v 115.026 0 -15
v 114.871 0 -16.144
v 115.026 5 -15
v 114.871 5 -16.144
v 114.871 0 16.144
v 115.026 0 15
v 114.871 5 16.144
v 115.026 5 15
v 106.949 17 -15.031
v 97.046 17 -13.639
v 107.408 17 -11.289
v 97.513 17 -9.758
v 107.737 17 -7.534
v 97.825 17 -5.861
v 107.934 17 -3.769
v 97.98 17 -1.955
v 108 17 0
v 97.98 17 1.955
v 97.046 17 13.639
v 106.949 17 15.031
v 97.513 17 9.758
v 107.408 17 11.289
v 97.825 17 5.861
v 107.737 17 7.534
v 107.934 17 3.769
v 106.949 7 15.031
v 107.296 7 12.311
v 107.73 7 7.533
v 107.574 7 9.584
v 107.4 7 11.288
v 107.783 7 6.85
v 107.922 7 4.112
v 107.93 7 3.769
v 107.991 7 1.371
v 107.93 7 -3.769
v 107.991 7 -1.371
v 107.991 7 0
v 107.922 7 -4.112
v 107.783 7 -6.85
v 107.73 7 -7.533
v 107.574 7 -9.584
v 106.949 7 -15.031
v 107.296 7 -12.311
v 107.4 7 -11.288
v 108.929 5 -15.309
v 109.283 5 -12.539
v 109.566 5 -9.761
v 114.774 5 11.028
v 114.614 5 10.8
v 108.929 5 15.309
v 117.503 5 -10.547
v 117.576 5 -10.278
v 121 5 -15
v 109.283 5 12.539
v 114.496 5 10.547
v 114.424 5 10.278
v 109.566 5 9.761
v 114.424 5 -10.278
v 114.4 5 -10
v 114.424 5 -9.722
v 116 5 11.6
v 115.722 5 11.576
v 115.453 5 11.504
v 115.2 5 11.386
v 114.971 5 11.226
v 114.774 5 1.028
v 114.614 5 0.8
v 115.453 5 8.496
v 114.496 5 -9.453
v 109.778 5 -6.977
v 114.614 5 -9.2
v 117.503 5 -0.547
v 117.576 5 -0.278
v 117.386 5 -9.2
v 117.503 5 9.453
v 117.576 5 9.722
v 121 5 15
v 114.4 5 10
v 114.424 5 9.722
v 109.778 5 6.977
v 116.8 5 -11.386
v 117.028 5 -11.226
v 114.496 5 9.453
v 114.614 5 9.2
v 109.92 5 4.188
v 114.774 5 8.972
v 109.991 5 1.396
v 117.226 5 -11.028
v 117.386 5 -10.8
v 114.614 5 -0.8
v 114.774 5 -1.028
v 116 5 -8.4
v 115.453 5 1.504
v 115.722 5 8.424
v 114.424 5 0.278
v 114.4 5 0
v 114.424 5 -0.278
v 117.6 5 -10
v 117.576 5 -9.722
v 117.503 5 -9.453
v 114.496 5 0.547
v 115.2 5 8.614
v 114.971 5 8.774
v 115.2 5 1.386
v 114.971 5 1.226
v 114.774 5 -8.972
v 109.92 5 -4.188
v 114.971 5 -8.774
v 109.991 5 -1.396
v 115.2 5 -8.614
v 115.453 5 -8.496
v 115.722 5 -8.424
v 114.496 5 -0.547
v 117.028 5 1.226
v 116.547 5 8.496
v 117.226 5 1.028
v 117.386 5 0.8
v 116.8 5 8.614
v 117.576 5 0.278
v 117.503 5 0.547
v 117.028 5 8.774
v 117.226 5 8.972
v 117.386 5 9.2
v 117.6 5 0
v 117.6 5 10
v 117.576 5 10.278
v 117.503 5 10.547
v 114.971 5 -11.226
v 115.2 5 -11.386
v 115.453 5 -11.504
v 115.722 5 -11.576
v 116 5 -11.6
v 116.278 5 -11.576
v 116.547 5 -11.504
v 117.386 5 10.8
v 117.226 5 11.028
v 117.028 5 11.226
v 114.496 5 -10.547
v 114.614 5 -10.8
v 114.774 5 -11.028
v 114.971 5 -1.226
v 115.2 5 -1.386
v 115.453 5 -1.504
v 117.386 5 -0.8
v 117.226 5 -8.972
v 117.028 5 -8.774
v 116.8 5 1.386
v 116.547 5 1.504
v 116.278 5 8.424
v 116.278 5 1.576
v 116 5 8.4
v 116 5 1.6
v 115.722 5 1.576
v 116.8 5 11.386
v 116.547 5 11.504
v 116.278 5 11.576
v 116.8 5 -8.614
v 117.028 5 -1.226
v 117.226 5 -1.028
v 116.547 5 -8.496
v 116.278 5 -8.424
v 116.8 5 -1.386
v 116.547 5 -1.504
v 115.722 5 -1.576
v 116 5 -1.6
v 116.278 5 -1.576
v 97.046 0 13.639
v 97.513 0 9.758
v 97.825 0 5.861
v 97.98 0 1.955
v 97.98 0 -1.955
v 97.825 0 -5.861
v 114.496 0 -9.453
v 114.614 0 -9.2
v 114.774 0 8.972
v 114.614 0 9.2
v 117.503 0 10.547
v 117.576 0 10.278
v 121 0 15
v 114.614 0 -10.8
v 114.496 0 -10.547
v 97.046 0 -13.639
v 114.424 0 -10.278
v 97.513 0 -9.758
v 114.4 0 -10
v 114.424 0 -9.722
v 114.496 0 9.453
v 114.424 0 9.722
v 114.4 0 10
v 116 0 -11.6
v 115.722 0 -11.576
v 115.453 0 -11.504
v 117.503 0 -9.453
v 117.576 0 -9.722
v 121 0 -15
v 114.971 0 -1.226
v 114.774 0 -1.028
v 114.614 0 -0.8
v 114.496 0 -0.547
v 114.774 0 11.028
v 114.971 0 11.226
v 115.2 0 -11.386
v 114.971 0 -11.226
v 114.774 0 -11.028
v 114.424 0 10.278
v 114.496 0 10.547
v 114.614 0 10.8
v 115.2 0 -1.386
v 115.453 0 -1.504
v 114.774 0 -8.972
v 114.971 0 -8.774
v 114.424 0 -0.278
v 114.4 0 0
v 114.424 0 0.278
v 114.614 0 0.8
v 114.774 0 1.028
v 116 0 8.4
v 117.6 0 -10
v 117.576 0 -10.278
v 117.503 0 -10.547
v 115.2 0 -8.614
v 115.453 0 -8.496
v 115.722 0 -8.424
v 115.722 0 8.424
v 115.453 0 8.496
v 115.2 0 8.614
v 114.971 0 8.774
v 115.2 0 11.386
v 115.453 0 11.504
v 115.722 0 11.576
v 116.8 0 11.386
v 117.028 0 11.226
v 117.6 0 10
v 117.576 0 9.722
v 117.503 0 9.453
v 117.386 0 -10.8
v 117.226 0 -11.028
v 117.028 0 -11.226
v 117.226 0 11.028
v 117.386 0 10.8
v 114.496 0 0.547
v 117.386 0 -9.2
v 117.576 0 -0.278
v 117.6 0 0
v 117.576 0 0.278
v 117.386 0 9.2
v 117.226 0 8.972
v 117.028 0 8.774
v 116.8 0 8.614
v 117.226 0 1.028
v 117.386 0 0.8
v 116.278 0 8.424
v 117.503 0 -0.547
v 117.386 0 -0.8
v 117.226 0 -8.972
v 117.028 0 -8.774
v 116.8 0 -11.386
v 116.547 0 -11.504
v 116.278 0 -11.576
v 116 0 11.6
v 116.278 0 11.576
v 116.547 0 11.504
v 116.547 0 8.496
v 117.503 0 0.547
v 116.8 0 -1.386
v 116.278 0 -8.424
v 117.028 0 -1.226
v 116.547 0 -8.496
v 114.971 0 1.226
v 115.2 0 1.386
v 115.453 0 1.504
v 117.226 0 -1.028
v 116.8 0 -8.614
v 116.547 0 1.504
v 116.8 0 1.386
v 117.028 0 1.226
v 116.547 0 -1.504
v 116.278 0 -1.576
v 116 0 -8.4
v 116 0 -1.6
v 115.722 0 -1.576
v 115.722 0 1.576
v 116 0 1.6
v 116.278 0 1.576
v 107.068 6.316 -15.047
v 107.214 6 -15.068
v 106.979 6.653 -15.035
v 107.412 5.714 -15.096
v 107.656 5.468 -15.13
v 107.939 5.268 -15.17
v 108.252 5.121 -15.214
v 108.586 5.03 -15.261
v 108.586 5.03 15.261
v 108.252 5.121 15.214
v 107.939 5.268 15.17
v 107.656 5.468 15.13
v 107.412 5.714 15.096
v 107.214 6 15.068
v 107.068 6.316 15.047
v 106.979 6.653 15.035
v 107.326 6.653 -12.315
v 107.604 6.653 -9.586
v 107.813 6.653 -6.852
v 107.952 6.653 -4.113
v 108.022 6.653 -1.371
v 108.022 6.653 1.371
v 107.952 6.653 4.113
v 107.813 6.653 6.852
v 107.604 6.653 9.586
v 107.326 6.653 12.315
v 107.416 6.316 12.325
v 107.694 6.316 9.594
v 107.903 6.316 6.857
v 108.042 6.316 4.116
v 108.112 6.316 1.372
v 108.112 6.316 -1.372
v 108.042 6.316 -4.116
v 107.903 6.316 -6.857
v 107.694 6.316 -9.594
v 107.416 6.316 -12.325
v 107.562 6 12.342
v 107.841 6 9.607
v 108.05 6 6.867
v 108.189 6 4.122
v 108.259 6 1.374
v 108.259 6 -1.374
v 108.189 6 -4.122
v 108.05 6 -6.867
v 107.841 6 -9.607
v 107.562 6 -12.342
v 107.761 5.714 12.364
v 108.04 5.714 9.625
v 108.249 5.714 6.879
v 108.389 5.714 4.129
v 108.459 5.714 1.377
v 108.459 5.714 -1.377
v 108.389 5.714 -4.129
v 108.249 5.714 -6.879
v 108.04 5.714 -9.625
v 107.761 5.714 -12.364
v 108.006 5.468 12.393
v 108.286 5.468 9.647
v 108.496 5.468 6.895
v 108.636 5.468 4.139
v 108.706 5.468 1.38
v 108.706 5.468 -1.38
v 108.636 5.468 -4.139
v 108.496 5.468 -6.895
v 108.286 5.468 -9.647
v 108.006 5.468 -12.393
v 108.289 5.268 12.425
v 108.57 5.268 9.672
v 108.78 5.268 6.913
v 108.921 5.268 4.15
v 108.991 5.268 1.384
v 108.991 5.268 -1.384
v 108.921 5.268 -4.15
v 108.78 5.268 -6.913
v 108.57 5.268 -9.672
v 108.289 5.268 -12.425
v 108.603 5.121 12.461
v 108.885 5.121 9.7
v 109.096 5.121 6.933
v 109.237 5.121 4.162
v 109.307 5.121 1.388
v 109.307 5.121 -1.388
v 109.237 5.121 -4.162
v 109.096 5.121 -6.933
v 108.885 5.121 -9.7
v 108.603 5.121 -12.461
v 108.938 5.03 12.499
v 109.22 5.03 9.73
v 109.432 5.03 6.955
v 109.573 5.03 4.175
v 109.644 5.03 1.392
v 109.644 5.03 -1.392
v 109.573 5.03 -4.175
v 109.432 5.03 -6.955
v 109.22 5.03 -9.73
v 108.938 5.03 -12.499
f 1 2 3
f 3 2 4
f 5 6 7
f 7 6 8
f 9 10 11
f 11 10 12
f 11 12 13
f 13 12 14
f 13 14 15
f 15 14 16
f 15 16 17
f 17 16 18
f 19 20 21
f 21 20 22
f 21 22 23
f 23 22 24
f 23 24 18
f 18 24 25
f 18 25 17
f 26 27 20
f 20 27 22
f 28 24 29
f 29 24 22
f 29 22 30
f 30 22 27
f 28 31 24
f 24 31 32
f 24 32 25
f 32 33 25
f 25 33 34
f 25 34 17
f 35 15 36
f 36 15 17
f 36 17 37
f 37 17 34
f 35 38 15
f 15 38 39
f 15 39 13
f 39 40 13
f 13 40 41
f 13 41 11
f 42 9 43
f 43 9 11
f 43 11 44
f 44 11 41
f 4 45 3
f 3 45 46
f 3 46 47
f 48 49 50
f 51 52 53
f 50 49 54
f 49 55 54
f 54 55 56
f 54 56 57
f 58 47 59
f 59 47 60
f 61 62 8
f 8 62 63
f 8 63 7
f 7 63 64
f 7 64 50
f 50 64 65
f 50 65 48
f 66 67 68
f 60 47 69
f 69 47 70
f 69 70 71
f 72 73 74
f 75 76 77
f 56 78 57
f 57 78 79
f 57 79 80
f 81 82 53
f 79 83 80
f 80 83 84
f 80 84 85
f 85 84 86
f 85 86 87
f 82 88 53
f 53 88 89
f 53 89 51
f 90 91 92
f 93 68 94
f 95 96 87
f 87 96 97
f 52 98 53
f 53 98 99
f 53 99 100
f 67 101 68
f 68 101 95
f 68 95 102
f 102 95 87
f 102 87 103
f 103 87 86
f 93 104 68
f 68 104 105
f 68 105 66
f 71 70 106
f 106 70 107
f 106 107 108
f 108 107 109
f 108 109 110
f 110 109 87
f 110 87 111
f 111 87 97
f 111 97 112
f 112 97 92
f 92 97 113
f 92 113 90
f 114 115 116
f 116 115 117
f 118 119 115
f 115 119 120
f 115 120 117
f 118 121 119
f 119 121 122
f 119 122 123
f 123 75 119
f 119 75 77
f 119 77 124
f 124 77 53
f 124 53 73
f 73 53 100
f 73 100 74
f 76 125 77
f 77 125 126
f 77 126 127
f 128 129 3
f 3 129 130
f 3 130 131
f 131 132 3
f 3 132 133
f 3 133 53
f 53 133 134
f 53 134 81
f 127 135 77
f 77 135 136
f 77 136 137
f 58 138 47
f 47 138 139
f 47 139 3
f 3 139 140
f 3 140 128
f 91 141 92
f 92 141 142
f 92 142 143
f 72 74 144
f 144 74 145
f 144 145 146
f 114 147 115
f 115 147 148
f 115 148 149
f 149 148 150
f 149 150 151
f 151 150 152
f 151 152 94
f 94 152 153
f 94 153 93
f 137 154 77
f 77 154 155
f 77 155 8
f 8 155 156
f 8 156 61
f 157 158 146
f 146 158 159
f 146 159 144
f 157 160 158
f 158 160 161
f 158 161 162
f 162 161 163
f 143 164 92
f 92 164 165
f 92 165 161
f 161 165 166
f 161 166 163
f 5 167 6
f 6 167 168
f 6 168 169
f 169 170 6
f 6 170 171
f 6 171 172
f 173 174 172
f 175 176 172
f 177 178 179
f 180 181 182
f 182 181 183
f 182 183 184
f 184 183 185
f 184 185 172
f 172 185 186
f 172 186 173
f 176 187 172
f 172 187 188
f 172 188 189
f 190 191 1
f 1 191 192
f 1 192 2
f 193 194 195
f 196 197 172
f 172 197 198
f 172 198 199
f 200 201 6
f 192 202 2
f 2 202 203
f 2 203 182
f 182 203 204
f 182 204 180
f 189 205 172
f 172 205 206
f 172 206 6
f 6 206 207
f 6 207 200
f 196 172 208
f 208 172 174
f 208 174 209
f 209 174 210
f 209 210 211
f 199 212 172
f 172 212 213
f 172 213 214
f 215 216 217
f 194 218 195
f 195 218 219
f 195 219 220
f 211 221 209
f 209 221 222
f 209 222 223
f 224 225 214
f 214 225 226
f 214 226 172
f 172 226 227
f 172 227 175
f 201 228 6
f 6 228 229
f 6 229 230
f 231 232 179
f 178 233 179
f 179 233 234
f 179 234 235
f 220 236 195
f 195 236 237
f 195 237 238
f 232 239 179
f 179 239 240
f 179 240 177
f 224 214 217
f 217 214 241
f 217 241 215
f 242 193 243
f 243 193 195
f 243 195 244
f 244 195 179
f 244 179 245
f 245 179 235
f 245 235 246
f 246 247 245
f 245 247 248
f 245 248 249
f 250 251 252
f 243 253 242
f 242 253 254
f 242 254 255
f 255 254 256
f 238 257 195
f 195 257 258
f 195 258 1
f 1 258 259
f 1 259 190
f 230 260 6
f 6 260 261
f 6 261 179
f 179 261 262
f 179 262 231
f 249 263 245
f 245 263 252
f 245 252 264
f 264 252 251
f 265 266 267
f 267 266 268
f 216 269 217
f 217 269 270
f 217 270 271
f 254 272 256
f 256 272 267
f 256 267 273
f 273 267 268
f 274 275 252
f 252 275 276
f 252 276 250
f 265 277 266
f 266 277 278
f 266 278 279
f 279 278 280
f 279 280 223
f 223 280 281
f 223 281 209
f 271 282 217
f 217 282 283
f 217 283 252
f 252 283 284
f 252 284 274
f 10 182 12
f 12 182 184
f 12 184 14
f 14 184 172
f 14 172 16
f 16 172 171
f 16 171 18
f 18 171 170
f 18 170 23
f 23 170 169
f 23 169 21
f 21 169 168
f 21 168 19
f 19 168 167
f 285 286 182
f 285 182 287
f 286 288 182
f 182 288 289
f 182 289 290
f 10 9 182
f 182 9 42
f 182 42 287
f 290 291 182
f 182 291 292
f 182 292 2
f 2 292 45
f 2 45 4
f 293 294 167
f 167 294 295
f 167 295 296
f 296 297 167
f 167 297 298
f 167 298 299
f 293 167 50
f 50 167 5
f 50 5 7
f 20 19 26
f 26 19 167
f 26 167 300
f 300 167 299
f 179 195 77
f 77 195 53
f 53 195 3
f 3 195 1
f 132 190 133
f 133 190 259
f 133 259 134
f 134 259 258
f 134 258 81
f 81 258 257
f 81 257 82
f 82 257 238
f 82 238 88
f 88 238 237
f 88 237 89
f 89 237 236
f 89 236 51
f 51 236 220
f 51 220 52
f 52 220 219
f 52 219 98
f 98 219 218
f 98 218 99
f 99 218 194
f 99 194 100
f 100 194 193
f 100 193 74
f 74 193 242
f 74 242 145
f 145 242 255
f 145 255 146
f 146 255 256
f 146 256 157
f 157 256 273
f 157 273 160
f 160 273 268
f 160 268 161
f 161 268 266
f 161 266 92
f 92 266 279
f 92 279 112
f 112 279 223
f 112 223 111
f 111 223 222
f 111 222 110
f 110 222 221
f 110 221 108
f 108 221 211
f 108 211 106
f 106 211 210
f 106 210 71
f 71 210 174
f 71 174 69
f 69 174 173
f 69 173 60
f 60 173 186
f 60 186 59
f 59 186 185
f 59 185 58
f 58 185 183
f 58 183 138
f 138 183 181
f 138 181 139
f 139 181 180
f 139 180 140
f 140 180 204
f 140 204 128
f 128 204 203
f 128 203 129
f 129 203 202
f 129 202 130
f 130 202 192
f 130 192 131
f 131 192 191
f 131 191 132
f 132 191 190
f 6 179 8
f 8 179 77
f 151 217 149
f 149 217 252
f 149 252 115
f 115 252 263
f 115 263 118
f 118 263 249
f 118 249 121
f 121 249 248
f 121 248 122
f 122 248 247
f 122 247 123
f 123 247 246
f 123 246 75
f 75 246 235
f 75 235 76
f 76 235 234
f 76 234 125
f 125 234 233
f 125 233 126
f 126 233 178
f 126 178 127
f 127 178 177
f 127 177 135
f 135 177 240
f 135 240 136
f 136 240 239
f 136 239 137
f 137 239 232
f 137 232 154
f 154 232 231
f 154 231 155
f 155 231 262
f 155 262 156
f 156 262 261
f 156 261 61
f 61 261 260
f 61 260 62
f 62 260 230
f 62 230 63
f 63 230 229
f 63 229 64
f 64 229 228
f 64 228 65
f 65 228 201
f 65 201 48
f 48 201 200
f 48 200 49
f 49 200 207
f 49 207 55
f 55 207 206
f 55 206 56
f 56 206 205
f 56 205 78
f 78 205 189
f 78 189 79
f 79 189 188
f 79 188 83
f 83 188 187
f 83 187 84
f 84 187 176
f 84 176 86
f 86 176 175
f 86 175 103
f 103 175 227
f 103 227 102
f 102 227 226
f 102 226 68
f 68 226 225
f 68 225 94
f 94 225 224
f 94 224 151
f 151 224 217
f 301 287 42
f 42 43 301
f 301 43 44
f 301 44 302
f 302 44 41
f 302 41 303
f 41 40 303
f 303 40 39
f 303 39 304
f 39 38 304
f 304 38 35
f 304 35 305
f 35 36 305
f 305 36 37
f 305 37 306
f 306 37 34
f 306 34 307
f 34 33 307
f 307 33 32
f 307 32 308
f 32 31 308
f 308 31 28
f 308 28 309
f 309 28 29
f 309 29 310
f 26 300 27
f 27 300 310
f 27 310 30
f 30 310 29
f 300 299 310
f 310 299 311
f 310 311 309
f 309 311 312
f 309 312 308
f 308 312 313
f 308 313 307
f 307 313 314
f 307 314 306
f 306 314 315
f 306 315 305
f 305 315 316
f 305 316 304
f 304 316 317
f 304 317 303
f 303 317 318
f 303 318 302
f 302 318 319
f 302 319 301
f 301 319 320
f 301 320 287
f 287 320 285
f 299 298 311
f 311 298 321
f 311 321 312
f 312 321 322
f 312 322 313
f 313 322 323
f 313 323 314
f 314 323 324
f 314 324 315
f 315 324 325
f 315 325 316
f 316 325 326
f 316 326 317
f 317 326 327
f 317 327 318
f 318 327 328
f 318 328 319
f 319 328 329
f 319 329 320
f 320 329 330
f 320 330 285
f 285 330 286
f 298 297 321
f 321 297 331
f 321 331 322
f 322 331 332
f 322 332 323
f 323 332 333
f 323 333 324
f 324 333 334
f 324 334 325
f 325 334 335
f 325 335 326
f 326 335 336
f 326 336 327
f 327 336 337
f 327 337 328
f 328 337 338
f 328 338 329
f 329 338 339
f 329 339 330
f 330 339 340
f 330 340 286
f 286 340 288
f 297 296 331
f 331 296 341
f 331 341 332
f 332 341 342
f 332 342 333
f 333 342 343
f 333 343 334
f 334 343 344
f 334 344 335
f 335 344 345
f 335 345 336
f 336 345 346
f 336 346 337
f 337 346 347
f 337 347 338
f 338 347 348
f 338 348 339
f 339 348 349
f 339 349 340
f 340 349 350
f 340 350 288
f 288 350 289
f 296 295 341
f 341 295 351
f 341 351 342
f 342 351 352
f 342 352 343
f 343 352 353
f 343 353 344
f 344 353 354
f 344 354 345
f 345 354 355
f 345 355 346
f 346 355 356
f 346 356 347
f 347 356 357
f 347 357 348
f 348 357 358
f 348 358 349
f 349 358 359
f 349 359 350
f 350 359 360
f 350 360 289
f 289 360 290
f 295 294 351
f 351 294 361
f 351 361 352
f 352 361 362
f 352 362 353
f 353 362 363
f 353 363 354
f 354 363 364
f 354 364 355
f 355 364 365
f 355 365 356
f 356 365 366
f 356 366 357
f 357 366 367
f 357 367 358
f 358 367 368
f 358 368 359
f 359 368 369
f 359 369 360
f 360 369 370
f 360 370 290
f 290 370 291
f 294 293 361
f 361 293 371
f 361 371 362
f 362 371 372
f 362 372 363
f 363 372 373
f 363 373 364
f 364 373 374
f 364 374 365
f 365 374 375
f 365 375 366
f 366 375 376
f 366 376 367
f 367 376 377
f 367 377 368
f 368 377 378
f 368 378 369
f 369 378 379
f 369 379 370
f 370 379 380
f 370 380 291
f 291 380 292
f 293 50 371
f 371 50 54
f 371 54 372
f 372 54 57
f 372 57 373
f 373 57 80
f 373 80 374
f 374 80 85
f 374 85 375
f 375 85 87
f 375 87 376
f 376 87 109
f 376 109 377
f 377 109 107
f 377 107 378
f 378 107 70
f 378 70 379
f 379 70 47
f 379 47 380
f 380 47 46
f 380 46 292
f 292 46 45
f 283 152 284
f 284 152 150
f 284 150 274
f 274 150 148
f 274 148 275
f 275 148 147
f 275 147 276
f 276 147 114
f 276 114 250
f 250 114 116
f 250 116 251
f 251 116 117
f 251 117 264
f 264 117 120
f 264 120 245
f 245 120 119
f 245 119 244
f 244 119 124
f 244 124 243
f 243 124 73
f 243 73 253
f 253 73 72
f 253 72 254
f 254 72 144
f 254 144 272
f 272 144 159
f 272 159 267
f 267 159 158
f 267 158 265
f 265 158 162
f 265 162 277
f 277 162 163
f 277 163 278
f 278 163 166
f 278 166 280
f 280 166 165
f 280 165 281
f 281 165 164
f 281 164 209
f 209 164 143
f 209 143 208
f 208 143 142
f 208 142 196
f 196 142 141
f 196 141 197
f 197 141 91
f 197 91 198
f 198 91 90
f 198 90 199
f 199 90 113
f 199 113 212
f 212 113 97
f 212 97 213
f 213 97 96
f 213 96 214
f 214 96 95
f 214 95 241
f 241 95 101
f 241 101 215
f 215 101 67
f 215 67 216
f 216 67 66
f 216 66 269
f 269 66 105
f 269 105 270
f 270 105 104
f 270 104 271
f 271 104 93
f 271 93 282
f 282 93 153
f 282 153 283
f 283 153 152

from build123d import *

# Parameters (mm, degrees)
REVOLVE1_ANGLE                 = 16
SKETCH4_W                      = 10
SKETCH4_H                      = 5
MAKERBEAMSUPPORT_DEPTH         = 10
SKETCH5_R                      = 1.6
MAKERBEAMHOLE_DEPTH            = 18
MAKERBEAMHOLELINEARRIGHT_COUNT = 2
MAKERBEAMHOLELINEARRIGHT_PITCH = 10
MIRROR3_COPY_1_SKETCH_W        = 10
MIRROR3_COPY_1_SKETCH_H        = 5
MIRROR3_COPY_1_DEPTH           = 10
MIRROR3_COPY_2_SKETCH_R        = 1.6
MIRROR3_COPY_2_DEPTH           = 18
MIRROR3_COPY_3_SKETCH_W        = 10
MIRROR3_COPY_3_SKETCH_H        = 5
MIRROR3_COPY_3_DEPTH           = 10
FILLET7_R                      = 2
SKETCH8_R                      = 1.6
CUT_EXTRUDE8_DEPTH             = 6


with BuildPart() as part:
    # Sketch1 → Revolve1 (revolve, symmetric)
    with BuildSketch(Plane.XY) as revolve1_sk:
        Polygon((98, 17), (98, 0), (116, 0), (116, 5), (108, 5), (108, 17), align=None)
    revolve(axis=Axis((0, -55, 0), (0, 1, 0)), revolution_arc=REVOLVE1_ANGLE / 2)
    revolve(revolve1_sk.sketch, axis=Axis((0, -55, 0), (0, -1, 0)), revolution_arc=REVOLVE1_ANGLE / 2)

    # Sketch4 → MakerBeamSupport (add)
    with BuildSketch(Plane(origin=(111, 0, 0), x_dir=(0, 0, -1), z_dir=(1, 0, 0))):
        with Locations((0, 2.5)):
            Rectangle(SKETCH4_W, SKETCH4_H)
    makerbeamsupport = extrude(amount=MAKERBEAMSUPPORT_DEPTH)

    # Sketch5 → MakerBeamHole (cut, through all)
    with BuildSketch(Plane(origin=(0, 0, 0), x_dir=(-1, 0, 0), z_dir=(0, -1, 0))):
        with Locations((-116, 0)):
            Circle(SKETCH5_R)
    makerbeamhole = extrude(amount=-MAKERBEAMHOLE_DEPTH, mode=Mode.SUBTRACT)

    # MakerBeamHoleLinearRight: MakerBeamSupport, MakerBeamHole ×2
    with Locations(*[(0, 0, -i * MAKERBEAMHOLELINEARRIGHT_PITCH) for i in range(1, MAKERBEAMHOLELINEARRIGHT_COUNT)]):
        add(makerbeamsupport)
        add(makerbeamhole, mode=Mode.SUBTRACT)

    # Mirror3: MakerBeamHole across plane
    add(makerbeamhole.mirror(Plane.XY), mode=Mode.SUBTRACT)

    # Mirror3 copy 1 sketch → Mirror3 copy 1 (add)
    with BuildSketch(Plane(origin=(111, 0, 10), x_dir=(0, 0, 1), z_dir=(1, 0, 0))):
        with Locations((0, -2.5)):
            Rectangle(MIRROR3_COPY_1_SKETCH_W, MIRROR3_COPY_1_SKETCH_H)
    extrude(amount=MIRROR3_COPY_1_DEPTH)

    # Mirror3 copy 2 sketch → Mirror3 copy 2 (cut, through all)
    with BuildSketch(Plane(origin=(0, 0, 10), x_dir=(-1, 0, 0), z_dir=(0, -1, 0))):
        with Locations((-116, 0)):
            Circle(MIRROR3_COPY_2_SKETCH_R)
    extrude(amount=-MIRROR3_COPY_2_DEPTH, mode=Mode.SUBTRACT)

    # Mirror3 copy 3 sketch → Mirror3 copy 3 (add)
    with BuildSketch(Plane(origin=(111, 0, 0), x_dir=(0, 0, 1), z_dir=(1, 0, 0))):
        with Locations((0, -2.5)):
            Rectangle(MIRROR3_COPY_3_SKETCH_W, MIRROR3_COPY_3_SKETCH_H)
    extrude(amount=MIRROR3_COPY_3_DEPTH)

    # Fillet7
    fillet7_edges = [part.edges().sort_by_distance(p)[0] for p in [
        (108, 5, 0),
    ]]
    fillet(fillet7_edges, radius=FILLET7_R)

    # Sketch8 → Cut-Extrude8 (cut, through all)
    with BuildSketch(Plane(origin=(0, 5, 0), x_dir=(1, 0, 0), z_dir=(0, 1, 0))):
        with Locations((116, 0)):
            Circle(SKETCH8_R)
    extrude(amount=-CUT_EXTRUDE8_DEPTH, mode=Mode.SUBTRACT)


solid = part.part
